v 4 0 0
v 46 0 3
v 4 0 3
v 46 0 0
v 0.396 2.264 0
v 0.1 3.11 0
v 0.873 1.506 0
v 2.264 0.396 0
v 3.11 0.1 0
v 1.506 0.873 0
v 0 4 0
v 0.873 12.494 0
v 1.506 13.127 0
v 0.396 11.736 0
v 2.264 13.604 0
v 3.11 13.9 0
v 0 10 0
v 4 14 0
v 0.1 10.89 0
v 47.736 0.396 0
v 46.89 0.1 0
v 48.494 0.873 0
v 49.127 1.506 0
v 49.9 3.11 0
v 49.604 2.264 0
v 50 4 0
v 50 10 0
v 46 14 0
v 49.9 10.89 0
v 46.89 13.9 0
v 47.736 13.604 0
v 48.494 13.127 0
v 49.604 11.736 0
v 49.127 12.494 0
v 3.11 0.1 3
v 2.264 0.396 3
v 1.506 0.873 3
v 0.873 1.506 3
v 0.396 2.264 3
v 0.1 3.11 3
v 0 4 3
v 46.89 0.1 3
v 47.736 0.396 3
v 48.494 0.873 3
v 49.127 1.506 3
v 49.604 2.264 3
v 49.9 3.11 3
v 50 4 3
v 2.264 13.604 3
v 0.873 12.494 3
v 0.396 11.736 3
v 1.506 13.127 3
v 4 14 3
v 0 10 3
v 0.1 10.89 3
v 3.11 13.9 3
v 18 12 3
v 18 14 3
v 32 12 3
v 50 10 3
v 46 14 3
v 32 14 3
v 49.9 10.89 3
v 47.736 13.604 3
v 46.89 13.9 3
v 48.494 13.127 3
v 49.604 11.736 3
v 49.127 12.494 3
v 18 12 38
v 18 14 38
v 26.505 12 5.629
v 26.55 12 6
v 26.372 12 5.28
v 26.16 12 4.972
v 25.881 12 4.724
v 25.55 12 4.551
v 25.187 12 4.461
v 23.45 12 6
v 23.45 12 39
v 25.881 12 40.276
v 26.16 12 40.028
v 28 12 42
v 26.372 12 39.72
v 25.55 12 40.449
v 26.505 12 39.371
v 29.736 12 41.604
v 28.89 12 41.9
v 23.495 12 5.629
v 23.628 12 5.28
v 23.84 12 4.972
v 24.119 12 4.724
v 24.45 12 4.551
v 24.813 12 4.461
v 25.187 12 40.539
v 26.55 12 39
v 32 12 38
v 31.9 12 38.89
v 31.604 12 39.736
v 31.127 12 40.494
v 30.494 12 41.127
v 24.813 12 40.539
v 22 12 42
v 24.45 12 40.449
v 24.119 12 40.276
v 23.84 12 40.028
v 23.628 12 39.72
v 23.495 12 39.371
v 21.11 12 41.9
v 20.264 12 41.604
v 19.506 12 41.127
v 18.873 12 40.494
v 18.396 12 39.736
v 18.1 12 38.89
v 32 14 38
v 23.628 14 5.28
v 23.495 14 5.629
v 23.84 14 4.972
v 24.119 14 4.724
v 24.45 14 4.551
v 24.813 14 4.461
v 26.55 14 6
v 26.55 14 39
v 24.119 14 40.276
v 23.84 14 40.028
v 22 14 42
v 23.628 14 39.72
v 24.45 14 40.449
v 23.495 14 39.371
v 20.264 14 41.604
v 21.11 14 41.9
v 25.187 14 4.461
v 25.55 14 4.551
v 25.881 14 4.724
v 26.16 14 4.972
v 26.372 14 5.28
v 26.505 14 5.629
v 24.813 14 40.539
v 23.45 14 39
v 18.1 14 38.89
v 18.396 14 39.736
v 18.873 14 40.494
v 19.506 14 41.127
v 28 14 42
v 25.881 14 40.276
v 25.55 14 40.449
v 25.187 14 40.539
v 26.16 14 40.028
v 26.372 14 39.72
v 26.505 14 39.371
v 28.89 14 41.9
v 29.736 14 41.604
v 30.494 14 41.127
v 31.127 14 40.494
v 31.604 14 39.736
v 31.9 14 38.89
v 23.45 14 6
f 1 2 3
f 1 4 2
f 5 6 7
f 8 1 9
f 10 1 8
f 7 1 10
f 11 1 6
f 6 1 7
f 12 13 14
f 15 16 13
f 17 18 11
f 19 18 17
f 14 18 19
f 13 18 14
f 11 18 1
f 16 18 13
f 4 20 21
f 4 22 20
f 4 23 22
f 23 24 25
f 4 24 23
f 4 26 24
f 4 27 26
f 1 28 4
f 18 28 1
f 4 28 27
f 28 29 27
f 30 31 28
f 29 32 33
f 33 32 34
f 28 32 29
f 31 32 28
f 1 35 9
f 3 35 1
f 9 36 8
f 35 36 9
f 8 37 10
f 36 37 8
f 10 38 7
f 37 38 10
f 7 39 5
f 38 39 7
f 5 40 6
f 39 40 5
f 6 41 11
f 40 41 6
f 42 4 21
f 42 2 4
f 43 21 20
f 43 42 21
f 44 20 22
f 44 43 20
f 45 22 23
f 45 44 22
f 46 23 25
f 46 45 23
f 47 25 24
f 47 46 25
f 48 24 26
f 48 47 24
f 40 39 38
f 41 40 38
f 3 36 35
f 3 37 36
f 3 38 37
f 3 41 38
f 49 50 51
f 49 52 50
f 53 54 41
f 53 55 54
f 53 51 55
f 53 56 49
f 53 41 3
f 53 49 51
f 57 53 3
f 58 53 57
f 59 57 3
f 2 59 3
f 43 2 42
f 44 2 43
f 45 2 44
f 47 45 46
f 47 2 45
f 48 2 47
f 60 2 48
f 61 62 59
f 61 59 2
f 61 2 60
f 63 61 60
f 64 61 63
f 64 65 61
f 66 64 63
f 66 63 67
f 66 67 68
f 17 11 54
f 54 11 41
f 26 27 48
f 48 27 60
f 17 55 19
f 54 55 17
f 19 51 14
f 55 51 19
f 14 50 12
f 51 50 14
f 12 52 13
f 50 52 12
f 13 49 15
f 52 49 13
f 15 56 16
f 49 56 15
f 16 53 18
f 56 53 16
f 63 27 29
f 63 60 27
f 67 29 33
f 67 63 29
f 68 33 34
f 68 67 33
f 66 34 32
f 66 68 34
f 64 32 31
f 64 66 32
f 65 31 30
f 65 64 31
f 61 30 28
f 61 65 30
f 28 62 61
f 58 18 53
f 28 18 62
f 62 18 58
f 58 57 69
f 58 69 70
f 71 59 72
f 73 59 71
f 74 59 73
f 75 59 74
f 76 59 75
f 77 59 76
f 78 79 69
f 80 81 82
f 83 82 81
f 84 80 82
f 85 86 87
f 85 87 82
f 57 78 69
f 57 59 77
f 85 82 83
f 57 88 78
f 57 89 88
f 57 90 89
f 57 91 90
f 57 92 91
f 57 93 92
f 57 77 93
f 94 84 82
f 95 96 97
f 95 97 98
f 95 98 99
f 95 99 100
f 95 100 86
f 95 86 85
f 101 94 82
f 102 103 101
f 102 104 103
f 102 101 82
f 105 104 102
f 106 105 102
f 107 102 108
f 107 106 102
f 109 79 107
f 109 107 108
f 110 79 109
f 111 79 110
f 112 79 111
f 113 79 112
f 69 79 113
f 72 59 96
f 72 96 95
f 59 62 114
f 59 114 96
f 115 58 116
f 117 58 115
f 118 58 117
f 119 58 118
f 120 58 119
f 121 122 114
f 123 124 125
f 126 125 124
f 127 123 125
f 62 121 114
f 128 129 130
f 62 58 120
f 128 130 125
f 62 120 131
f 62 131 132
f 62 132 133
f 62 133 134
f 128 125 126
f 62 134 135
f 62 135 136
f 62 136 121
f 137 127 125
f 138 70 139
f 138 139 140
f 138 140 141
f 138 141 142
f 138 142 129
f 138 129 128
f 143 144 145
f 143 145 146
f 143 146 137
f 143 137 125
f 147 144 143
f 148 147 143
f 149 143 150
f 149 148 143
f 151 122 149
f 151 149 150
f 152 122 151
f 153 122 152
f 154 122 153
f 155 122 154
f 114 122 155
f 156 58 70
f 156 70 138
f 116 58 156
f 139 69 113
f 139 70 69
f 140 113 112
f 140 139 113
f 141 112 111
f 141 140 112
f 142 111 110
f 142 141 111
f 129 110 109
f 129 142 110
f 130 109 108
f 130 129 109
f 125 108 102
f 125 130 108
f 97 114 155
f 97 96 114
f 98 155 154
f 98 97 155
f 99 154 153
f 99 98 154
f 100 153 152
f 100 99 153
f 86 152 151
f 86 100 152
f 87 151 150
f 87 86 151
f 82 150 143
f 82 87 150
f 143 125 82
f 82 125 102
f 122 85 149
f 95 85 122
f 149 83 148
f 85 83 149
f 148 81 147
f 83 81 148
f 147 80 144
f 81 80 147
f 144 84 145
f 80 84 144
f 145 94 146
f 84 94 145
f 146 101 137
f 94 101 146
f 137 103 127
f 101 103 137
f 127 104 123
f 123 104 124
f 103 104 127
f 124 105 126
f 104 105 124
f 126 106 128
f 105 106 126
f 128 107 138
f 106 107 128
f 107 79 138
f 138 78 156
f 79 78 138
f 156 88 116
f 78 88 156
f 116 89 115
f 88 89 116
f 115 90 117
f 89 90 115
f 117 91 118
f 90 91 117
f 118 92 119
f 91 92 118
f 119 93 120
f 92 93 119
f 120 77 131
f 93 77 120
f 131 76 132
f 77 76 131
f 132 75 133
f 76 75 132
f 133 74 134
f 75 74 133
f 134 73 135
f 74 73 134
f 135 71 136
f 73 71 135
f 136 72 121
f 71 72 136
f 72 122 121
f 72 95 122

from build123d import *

# Parameters (mm, degrees)
SKETCH_W     = 50
SKETCH_H     = 14
PAD_DEPTH    = 3
SKETCH001_W  = 14
SKETCH001_H  = 2
PAD001_DEPTH = 39
POCKET_DEPTH = 2
FILLET_R     = 4


with BuildPart() as part:
    # Sketch → Pad (new body)
    with BuildSketch(Plane.XY):
        with Locations((25, 7)):
            Rectangle(SKETCH_W, SKETCH_H)
    extrude(amount=PAD_DEPTH)

    # Sketch001 (on Face6 of Pad) → Pad001 (join)
    with BuildSketch(Plane.XY.offset(3)):
        with Locations((25, 13)):
            Rectangle(SKETCH001_W, SKETCH001_H)
    extrude(amount=PAD001_DEPTH)

    # Sketch002 (on Face8 of Pad001) → Pocket (cut)
    with BuildSketch(Plane.XZ.offset(-12)):
        with BuildLine():
            ThreePointArc((26.55, 39), (25, 40.55), (23.45, 39))
            Line((23.45, 39), (23.45, 6))
            ThreePointArc((23.45, 6), (25, 4.45), (26.55, 6))
            Line((26.55, 39), (26.55, 6))
        make_face()
    extrude(amount=-POCKET_DEPTH, mode=Mode.SUBTRACT)

    # Fillet
    fillet_edges = [part.edges().sort_by_distance(p)[0] for p in [
        (0, 0, 1.5),
        (50, 0, 1.5),
        (18, 13, 42),
        (32, 13, 42),
        (0, 14, 1.5),
        (50, 14, 1.5),
    ]]
    fillet(fillet_edges, radius=FILLET_R)


solid = part.part
